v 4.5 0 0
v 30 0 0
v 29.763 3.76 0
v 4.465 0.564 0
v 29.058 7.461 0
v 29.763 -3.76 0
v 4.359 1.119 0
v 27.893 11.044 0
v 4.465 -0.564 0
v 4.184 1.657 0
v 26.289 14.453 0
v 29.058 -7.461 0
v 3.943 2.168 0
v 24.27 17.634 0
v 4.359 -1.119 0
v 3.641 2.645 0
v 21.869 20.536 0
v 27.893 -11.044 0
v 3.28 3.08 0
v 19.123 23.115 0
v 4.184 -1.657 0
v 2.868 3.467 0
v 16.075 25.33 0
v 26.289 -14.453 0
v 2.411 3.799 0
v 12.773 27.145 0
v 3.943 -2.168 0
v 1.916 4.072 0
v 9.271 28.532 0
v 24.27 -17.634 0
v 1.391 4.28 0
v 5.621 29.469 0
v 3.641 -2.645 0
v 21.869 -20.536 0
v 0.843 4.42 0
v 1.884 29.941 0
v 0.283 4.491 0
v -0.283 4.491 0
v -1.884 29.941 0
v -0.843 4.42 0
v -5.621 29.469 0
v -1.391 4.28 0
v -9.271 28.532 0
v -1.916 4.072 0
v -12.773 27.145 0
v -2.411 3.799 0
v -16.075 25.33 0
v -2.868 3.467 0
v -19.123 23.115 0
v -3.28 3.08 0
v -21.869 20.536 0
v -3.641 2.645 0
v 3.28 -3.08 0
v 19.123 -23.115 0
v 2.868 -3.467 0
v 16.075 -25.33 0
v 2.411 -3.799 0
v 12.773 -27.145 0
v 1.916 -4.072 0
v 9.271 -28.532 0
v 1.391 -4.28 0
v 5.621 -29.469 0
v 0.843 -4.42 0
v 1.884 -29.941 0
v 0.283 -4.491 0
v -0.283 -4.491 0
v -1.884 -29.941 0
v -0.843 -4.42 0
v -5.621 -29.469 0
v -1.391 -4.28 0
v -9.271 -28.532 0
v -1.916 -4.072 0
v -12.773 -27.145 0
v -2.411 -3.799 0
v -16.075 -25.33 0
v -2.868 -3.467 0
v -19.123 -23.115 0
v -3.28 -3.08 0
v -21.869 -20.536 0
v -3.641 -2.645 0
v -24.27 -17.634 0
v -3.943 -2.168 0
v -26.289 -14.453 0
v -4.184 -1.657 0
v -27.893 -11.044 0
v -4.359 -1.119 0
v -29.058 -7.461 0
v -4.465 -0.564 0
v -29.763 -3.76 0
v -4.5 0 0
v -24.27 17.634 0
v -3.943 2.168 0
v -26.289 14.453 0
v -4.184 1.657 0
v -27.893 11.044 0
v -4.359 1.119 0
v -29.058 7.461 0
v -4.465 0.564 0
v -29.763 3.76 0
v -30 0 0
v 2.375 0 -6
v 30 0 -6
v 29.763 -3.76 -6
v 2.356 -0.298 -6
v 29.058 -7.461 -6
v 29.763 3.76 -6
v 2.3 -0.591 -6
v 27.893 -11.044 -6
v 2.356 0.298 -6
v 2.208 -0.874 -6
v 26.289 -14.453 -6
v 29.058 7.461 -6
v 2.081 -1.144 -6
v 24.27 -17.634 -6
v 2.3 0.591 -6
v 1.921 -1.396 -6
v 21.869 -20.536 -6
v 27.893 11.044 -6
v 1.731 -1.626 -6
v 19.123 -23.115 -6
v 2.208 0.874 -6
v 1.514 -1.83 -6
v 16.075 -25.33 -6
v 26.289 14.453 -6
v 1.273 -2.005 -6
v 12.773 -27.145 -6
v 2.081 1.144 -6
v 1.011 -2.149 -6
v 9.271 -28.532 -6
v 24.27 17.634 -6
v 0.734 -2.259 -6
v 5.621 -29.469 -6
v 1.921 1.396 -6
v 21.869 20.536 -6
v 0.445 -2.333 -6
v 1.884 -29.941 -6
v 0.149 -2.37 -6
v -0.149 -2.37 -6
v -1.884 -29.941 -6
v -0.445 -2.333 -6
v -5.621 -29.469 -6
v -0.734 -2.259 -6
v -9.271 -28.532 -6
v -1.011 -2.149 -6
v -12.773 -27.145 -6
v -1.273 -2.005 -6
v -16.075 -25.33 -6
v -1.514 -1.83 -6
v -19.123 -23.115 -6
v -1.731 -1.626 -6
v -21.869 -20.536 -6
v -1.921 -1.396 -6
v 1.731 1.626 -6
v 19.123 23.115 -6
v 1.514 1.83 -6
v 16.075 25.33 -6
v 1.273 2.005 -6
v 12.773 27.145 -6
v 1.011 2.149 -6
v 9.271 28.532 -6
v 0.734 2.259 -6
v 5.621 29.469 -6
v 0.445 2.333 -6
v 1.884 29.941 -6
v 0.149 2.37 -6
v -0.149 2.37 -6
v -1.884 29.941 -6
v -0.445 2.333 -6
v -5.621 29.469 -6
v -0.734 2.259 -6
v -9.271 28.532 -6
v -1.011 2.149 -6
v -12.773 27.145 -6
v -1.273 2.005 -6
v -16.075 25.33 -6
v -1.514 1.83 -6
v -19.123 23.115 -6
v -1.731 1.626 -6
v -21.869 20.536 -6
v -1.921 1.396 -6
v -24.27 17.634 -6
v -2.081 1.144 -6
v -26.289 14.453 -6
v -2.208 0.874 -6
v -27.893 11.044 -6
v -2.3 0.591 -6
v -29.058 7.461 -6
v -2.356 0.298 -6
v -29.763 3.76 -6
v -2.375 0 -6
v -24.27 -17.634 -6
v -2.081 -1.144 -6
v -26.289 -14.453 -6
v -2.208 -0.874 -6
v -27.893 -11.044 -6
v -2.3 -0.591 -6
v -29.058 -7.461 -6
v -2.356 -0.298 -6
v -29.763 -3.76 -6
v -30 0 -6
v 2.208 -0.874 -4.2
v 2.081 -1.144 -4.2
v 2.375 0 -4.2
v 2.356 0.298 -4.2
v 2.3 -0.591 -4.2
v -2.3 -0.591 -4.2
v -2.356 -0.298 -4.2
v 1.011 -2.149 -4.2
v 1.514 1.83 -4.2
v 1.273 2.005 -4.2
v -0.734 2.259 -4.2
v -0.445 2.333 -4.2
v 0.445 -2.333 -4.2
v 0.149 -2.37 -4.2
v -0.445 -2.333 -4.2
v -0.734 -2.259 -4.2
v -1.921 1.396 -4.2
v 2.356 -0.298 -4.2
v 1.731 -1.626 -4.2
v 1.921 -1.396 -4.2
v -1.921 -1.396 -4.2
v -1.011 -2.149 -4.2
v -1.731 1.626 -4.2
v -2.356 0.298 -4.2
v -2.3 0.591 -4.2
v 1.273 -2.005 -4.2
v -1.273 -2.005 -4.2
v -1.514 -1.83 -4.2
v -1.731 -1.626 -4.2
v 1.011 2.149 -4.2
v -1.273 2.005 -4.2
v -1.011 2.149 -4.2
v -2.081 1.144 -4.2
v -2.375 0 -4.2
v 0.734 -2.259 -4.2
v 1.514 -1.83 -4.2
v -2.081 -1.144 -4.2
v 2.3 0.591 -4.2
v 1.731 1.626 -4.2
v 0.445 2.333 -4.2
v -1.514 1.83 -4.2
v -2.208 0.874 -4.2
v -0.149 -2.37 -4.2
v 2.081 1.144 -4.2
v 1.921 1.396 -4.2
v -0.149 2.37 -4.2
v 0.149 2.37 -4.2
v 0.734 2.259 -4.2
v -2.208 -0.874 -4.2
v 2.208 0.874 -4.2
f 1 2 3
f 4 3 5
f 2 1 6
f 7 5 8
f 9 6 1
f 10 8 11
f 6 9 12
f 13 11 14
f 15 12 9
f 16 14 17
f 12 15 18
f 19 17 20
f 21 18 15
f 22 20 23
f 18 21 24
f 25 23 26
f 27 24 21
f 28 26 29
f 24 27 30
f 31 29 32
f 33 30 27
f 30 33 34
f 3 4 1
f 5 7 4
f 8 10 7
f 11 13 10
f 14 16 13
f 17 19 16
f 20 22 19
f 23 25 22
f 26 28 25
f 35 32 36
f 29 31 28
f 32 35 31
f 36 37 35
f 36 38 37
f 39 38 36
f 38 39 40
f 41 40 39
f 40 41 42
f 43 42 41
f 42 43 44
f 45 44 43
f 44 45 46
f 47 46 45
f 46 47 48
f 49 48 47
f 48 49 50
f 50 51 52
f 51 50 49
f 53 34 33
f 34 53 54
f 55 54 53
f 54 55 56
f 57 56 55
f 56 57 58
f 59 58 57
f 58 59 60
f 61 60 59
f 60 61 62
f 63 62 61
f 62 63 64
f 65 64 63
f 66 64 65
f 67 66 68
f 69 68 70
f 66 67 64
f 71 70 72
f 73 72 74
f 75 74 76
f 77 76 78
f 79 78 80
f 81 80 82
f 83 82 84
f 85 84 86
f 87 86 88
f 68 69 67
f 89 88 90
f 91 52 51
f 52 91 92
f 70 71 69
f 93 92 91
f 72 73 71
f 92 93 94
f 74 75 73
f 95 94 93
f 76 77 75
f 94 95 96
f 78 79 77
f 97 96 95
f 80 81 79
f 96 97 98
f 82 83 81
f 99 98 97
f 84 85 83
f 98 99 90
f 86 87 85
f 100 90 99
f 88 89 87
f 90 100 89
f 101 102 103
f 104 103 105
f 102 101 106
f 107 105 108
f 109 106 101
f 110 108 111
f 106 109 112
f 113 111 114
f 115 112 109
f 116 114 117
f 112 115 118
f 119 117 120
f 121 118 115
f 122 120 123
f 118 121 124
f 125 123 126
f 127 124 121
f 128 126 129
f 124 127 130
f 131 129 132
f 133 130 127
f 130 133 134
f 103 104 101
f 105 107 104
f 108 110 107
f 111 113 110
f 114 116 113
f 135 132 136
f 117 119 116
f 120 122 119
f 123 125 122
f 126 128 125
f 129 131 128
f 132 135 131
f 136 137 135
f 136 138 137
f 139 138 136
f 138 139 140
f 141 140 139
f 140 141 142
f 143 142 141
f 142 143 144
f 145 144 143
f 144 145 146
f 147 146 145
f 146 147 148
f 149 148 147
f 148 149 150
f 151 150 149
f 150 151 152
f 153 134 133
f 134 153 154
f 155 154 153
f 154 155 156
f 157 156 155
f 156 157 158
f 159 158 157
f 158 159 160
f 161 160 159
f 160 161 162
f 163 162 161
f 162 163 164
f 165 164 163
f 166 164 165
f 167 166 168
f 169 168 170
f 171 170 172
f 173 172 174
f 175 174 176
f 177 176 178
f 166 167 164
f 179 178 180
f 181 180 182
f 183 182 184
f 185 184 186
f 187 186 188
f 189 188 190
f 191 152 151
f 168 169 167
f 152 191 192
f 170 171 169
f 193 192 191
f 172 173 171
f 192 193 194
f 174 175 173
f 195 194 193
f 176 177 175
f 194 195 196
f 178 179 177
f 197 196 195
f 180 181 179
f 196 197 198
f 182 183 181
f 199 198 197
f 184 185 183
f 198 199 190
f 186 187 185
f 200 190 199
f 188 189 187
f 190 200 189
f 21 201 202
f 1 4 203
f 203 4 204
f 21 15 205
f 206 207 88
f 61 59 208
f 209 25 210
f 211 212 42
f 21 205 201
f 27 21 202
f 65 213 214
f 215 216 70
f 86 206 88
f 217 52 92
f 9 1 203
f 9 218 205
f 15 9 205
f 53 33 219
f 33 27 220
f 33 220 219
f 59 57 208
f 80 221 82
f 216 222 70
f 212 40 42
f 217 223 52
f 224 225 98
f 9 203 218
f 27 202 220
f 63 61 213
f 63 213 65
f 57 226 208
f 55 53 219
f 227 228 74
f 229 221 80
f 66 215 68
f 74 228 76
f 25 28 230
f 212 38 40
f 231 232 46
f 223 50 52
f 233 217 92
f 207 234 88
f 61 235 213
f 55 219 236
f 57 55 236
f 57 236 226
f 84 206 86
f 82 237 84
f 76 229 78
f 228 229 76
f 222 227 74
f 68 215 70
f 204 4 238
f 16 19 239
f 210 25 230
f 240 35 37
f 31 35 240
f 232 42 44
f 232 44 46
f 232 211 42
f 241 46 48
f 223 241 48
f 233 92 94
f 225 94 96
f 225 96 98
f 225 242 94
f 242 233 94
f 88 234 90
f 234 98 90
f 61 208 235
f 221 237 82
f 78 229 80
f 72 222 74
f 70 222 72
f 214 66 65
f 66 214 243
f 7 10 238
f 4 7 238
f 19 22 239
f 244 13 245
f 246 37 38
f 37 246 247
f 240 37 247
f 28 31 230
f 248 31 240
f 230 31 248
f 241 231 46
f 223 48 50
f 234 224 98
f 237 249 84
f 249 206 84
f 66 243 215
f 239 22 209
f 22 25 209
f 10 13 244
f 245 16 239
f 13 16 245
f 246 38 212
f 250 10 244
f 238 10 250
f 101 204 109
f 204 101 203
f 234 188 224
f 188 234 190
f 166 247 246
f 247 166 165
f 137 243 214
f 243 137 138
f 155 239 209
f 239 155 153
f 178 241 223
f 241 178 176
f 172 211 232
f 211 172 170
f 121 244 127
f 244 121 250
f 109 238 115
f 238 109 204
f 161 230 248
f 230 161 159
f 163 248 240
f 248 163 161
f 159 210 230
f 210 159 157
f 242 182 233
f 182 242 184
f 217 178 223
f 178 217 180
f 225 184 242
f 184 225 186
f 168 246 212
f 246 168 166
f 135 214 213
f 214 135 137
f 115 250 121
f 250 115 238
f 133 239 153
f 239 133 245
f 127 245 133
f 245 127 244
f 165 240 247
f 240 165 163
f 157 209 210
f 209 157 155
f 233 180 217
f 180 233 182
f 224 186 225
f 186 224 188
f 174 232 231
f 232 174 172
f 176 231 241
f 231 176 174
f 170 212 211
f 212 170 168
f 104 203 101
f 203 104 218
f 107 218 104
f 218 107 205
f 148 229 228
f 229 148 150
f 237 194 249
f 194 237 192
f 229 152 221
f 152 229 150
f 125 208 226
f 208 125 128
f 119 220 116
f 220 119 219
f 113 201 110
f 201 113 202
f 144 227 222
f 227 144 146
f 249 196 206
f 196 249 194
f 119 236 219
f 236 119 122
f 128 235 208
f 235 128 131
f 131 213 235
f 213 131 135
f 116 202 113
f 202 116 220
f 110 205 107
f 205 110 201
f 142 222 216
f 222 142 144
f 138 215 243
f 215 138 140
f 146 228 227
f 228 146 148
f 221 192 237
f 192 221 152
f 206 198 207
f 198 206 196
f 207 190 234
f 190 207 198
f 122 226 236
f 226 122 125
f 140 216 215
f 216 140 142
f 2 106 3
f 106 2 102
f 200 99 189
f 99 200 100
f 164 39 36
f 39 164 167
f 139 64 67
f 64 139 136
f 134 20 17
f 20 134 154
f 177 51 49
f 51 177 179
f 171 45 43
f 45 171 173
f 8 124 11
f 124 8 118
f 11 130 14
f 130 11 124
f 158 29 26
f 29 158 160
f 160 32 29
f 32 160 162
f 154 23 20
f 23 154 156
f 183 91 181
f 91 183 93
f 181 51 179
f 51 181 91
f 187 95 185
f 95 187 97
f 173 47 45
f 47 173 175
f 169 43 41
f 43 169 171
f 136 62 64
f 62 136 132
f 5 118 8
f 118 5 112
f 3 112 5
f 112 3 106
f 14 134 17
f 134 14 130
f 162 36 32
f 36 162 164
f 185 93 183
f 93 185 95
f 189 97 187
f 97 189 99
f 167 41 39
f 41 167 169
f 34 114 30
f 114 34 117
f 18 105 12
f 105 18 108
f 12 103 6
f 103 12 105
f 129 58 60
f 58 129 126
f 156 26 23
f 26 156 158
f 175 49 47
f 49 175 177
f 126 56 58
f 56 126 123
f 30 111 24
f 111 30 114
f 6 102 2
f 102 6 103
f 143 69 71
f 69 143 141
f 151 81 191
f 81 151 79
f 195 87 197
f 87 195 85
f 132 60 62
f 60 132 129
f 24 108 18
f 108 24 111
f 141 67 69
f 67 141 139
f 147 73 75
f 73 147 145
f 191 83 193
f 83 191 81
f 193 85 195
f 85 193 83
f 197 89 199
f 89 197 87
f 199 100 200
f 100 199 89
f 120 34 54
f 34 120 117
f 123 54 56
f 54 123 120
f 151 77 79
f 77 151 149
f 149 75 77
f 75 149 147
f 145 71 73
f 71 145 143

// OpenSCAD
$fn = 50;


difference() {
	union() {
		translate(v = [0, 0, -6.0000000000]) {
			cylinder(h = 6, r = 30.0000000000);
		}
	}
	union() {
		translate(v = [0, 0, 0]) {
			rotate(a = [0, 0, 0]) {
				difference() {
					union() {
						translate(v = [0, 0, -6.0000000000]) {
							cylinder(h = 6, r = 2.2500000000);
						}
						translate(v = [0, 0, -4.2000000000]) {
							cylinder(h = 4.2000000000, r1 = 2.3750000000, r2 = 4.5000000000);
						}
						translate(v = [0, 0, -6.0000000000]) {
							cylinder(h = 6, r = 2.3750000000);
						}
						translate(v = [0, 0, -6.0000000000]) {
							cylinder(h = 6, r = 2.2500000000);
						}
					}
					union();
				}
			}
		}
	}
}
